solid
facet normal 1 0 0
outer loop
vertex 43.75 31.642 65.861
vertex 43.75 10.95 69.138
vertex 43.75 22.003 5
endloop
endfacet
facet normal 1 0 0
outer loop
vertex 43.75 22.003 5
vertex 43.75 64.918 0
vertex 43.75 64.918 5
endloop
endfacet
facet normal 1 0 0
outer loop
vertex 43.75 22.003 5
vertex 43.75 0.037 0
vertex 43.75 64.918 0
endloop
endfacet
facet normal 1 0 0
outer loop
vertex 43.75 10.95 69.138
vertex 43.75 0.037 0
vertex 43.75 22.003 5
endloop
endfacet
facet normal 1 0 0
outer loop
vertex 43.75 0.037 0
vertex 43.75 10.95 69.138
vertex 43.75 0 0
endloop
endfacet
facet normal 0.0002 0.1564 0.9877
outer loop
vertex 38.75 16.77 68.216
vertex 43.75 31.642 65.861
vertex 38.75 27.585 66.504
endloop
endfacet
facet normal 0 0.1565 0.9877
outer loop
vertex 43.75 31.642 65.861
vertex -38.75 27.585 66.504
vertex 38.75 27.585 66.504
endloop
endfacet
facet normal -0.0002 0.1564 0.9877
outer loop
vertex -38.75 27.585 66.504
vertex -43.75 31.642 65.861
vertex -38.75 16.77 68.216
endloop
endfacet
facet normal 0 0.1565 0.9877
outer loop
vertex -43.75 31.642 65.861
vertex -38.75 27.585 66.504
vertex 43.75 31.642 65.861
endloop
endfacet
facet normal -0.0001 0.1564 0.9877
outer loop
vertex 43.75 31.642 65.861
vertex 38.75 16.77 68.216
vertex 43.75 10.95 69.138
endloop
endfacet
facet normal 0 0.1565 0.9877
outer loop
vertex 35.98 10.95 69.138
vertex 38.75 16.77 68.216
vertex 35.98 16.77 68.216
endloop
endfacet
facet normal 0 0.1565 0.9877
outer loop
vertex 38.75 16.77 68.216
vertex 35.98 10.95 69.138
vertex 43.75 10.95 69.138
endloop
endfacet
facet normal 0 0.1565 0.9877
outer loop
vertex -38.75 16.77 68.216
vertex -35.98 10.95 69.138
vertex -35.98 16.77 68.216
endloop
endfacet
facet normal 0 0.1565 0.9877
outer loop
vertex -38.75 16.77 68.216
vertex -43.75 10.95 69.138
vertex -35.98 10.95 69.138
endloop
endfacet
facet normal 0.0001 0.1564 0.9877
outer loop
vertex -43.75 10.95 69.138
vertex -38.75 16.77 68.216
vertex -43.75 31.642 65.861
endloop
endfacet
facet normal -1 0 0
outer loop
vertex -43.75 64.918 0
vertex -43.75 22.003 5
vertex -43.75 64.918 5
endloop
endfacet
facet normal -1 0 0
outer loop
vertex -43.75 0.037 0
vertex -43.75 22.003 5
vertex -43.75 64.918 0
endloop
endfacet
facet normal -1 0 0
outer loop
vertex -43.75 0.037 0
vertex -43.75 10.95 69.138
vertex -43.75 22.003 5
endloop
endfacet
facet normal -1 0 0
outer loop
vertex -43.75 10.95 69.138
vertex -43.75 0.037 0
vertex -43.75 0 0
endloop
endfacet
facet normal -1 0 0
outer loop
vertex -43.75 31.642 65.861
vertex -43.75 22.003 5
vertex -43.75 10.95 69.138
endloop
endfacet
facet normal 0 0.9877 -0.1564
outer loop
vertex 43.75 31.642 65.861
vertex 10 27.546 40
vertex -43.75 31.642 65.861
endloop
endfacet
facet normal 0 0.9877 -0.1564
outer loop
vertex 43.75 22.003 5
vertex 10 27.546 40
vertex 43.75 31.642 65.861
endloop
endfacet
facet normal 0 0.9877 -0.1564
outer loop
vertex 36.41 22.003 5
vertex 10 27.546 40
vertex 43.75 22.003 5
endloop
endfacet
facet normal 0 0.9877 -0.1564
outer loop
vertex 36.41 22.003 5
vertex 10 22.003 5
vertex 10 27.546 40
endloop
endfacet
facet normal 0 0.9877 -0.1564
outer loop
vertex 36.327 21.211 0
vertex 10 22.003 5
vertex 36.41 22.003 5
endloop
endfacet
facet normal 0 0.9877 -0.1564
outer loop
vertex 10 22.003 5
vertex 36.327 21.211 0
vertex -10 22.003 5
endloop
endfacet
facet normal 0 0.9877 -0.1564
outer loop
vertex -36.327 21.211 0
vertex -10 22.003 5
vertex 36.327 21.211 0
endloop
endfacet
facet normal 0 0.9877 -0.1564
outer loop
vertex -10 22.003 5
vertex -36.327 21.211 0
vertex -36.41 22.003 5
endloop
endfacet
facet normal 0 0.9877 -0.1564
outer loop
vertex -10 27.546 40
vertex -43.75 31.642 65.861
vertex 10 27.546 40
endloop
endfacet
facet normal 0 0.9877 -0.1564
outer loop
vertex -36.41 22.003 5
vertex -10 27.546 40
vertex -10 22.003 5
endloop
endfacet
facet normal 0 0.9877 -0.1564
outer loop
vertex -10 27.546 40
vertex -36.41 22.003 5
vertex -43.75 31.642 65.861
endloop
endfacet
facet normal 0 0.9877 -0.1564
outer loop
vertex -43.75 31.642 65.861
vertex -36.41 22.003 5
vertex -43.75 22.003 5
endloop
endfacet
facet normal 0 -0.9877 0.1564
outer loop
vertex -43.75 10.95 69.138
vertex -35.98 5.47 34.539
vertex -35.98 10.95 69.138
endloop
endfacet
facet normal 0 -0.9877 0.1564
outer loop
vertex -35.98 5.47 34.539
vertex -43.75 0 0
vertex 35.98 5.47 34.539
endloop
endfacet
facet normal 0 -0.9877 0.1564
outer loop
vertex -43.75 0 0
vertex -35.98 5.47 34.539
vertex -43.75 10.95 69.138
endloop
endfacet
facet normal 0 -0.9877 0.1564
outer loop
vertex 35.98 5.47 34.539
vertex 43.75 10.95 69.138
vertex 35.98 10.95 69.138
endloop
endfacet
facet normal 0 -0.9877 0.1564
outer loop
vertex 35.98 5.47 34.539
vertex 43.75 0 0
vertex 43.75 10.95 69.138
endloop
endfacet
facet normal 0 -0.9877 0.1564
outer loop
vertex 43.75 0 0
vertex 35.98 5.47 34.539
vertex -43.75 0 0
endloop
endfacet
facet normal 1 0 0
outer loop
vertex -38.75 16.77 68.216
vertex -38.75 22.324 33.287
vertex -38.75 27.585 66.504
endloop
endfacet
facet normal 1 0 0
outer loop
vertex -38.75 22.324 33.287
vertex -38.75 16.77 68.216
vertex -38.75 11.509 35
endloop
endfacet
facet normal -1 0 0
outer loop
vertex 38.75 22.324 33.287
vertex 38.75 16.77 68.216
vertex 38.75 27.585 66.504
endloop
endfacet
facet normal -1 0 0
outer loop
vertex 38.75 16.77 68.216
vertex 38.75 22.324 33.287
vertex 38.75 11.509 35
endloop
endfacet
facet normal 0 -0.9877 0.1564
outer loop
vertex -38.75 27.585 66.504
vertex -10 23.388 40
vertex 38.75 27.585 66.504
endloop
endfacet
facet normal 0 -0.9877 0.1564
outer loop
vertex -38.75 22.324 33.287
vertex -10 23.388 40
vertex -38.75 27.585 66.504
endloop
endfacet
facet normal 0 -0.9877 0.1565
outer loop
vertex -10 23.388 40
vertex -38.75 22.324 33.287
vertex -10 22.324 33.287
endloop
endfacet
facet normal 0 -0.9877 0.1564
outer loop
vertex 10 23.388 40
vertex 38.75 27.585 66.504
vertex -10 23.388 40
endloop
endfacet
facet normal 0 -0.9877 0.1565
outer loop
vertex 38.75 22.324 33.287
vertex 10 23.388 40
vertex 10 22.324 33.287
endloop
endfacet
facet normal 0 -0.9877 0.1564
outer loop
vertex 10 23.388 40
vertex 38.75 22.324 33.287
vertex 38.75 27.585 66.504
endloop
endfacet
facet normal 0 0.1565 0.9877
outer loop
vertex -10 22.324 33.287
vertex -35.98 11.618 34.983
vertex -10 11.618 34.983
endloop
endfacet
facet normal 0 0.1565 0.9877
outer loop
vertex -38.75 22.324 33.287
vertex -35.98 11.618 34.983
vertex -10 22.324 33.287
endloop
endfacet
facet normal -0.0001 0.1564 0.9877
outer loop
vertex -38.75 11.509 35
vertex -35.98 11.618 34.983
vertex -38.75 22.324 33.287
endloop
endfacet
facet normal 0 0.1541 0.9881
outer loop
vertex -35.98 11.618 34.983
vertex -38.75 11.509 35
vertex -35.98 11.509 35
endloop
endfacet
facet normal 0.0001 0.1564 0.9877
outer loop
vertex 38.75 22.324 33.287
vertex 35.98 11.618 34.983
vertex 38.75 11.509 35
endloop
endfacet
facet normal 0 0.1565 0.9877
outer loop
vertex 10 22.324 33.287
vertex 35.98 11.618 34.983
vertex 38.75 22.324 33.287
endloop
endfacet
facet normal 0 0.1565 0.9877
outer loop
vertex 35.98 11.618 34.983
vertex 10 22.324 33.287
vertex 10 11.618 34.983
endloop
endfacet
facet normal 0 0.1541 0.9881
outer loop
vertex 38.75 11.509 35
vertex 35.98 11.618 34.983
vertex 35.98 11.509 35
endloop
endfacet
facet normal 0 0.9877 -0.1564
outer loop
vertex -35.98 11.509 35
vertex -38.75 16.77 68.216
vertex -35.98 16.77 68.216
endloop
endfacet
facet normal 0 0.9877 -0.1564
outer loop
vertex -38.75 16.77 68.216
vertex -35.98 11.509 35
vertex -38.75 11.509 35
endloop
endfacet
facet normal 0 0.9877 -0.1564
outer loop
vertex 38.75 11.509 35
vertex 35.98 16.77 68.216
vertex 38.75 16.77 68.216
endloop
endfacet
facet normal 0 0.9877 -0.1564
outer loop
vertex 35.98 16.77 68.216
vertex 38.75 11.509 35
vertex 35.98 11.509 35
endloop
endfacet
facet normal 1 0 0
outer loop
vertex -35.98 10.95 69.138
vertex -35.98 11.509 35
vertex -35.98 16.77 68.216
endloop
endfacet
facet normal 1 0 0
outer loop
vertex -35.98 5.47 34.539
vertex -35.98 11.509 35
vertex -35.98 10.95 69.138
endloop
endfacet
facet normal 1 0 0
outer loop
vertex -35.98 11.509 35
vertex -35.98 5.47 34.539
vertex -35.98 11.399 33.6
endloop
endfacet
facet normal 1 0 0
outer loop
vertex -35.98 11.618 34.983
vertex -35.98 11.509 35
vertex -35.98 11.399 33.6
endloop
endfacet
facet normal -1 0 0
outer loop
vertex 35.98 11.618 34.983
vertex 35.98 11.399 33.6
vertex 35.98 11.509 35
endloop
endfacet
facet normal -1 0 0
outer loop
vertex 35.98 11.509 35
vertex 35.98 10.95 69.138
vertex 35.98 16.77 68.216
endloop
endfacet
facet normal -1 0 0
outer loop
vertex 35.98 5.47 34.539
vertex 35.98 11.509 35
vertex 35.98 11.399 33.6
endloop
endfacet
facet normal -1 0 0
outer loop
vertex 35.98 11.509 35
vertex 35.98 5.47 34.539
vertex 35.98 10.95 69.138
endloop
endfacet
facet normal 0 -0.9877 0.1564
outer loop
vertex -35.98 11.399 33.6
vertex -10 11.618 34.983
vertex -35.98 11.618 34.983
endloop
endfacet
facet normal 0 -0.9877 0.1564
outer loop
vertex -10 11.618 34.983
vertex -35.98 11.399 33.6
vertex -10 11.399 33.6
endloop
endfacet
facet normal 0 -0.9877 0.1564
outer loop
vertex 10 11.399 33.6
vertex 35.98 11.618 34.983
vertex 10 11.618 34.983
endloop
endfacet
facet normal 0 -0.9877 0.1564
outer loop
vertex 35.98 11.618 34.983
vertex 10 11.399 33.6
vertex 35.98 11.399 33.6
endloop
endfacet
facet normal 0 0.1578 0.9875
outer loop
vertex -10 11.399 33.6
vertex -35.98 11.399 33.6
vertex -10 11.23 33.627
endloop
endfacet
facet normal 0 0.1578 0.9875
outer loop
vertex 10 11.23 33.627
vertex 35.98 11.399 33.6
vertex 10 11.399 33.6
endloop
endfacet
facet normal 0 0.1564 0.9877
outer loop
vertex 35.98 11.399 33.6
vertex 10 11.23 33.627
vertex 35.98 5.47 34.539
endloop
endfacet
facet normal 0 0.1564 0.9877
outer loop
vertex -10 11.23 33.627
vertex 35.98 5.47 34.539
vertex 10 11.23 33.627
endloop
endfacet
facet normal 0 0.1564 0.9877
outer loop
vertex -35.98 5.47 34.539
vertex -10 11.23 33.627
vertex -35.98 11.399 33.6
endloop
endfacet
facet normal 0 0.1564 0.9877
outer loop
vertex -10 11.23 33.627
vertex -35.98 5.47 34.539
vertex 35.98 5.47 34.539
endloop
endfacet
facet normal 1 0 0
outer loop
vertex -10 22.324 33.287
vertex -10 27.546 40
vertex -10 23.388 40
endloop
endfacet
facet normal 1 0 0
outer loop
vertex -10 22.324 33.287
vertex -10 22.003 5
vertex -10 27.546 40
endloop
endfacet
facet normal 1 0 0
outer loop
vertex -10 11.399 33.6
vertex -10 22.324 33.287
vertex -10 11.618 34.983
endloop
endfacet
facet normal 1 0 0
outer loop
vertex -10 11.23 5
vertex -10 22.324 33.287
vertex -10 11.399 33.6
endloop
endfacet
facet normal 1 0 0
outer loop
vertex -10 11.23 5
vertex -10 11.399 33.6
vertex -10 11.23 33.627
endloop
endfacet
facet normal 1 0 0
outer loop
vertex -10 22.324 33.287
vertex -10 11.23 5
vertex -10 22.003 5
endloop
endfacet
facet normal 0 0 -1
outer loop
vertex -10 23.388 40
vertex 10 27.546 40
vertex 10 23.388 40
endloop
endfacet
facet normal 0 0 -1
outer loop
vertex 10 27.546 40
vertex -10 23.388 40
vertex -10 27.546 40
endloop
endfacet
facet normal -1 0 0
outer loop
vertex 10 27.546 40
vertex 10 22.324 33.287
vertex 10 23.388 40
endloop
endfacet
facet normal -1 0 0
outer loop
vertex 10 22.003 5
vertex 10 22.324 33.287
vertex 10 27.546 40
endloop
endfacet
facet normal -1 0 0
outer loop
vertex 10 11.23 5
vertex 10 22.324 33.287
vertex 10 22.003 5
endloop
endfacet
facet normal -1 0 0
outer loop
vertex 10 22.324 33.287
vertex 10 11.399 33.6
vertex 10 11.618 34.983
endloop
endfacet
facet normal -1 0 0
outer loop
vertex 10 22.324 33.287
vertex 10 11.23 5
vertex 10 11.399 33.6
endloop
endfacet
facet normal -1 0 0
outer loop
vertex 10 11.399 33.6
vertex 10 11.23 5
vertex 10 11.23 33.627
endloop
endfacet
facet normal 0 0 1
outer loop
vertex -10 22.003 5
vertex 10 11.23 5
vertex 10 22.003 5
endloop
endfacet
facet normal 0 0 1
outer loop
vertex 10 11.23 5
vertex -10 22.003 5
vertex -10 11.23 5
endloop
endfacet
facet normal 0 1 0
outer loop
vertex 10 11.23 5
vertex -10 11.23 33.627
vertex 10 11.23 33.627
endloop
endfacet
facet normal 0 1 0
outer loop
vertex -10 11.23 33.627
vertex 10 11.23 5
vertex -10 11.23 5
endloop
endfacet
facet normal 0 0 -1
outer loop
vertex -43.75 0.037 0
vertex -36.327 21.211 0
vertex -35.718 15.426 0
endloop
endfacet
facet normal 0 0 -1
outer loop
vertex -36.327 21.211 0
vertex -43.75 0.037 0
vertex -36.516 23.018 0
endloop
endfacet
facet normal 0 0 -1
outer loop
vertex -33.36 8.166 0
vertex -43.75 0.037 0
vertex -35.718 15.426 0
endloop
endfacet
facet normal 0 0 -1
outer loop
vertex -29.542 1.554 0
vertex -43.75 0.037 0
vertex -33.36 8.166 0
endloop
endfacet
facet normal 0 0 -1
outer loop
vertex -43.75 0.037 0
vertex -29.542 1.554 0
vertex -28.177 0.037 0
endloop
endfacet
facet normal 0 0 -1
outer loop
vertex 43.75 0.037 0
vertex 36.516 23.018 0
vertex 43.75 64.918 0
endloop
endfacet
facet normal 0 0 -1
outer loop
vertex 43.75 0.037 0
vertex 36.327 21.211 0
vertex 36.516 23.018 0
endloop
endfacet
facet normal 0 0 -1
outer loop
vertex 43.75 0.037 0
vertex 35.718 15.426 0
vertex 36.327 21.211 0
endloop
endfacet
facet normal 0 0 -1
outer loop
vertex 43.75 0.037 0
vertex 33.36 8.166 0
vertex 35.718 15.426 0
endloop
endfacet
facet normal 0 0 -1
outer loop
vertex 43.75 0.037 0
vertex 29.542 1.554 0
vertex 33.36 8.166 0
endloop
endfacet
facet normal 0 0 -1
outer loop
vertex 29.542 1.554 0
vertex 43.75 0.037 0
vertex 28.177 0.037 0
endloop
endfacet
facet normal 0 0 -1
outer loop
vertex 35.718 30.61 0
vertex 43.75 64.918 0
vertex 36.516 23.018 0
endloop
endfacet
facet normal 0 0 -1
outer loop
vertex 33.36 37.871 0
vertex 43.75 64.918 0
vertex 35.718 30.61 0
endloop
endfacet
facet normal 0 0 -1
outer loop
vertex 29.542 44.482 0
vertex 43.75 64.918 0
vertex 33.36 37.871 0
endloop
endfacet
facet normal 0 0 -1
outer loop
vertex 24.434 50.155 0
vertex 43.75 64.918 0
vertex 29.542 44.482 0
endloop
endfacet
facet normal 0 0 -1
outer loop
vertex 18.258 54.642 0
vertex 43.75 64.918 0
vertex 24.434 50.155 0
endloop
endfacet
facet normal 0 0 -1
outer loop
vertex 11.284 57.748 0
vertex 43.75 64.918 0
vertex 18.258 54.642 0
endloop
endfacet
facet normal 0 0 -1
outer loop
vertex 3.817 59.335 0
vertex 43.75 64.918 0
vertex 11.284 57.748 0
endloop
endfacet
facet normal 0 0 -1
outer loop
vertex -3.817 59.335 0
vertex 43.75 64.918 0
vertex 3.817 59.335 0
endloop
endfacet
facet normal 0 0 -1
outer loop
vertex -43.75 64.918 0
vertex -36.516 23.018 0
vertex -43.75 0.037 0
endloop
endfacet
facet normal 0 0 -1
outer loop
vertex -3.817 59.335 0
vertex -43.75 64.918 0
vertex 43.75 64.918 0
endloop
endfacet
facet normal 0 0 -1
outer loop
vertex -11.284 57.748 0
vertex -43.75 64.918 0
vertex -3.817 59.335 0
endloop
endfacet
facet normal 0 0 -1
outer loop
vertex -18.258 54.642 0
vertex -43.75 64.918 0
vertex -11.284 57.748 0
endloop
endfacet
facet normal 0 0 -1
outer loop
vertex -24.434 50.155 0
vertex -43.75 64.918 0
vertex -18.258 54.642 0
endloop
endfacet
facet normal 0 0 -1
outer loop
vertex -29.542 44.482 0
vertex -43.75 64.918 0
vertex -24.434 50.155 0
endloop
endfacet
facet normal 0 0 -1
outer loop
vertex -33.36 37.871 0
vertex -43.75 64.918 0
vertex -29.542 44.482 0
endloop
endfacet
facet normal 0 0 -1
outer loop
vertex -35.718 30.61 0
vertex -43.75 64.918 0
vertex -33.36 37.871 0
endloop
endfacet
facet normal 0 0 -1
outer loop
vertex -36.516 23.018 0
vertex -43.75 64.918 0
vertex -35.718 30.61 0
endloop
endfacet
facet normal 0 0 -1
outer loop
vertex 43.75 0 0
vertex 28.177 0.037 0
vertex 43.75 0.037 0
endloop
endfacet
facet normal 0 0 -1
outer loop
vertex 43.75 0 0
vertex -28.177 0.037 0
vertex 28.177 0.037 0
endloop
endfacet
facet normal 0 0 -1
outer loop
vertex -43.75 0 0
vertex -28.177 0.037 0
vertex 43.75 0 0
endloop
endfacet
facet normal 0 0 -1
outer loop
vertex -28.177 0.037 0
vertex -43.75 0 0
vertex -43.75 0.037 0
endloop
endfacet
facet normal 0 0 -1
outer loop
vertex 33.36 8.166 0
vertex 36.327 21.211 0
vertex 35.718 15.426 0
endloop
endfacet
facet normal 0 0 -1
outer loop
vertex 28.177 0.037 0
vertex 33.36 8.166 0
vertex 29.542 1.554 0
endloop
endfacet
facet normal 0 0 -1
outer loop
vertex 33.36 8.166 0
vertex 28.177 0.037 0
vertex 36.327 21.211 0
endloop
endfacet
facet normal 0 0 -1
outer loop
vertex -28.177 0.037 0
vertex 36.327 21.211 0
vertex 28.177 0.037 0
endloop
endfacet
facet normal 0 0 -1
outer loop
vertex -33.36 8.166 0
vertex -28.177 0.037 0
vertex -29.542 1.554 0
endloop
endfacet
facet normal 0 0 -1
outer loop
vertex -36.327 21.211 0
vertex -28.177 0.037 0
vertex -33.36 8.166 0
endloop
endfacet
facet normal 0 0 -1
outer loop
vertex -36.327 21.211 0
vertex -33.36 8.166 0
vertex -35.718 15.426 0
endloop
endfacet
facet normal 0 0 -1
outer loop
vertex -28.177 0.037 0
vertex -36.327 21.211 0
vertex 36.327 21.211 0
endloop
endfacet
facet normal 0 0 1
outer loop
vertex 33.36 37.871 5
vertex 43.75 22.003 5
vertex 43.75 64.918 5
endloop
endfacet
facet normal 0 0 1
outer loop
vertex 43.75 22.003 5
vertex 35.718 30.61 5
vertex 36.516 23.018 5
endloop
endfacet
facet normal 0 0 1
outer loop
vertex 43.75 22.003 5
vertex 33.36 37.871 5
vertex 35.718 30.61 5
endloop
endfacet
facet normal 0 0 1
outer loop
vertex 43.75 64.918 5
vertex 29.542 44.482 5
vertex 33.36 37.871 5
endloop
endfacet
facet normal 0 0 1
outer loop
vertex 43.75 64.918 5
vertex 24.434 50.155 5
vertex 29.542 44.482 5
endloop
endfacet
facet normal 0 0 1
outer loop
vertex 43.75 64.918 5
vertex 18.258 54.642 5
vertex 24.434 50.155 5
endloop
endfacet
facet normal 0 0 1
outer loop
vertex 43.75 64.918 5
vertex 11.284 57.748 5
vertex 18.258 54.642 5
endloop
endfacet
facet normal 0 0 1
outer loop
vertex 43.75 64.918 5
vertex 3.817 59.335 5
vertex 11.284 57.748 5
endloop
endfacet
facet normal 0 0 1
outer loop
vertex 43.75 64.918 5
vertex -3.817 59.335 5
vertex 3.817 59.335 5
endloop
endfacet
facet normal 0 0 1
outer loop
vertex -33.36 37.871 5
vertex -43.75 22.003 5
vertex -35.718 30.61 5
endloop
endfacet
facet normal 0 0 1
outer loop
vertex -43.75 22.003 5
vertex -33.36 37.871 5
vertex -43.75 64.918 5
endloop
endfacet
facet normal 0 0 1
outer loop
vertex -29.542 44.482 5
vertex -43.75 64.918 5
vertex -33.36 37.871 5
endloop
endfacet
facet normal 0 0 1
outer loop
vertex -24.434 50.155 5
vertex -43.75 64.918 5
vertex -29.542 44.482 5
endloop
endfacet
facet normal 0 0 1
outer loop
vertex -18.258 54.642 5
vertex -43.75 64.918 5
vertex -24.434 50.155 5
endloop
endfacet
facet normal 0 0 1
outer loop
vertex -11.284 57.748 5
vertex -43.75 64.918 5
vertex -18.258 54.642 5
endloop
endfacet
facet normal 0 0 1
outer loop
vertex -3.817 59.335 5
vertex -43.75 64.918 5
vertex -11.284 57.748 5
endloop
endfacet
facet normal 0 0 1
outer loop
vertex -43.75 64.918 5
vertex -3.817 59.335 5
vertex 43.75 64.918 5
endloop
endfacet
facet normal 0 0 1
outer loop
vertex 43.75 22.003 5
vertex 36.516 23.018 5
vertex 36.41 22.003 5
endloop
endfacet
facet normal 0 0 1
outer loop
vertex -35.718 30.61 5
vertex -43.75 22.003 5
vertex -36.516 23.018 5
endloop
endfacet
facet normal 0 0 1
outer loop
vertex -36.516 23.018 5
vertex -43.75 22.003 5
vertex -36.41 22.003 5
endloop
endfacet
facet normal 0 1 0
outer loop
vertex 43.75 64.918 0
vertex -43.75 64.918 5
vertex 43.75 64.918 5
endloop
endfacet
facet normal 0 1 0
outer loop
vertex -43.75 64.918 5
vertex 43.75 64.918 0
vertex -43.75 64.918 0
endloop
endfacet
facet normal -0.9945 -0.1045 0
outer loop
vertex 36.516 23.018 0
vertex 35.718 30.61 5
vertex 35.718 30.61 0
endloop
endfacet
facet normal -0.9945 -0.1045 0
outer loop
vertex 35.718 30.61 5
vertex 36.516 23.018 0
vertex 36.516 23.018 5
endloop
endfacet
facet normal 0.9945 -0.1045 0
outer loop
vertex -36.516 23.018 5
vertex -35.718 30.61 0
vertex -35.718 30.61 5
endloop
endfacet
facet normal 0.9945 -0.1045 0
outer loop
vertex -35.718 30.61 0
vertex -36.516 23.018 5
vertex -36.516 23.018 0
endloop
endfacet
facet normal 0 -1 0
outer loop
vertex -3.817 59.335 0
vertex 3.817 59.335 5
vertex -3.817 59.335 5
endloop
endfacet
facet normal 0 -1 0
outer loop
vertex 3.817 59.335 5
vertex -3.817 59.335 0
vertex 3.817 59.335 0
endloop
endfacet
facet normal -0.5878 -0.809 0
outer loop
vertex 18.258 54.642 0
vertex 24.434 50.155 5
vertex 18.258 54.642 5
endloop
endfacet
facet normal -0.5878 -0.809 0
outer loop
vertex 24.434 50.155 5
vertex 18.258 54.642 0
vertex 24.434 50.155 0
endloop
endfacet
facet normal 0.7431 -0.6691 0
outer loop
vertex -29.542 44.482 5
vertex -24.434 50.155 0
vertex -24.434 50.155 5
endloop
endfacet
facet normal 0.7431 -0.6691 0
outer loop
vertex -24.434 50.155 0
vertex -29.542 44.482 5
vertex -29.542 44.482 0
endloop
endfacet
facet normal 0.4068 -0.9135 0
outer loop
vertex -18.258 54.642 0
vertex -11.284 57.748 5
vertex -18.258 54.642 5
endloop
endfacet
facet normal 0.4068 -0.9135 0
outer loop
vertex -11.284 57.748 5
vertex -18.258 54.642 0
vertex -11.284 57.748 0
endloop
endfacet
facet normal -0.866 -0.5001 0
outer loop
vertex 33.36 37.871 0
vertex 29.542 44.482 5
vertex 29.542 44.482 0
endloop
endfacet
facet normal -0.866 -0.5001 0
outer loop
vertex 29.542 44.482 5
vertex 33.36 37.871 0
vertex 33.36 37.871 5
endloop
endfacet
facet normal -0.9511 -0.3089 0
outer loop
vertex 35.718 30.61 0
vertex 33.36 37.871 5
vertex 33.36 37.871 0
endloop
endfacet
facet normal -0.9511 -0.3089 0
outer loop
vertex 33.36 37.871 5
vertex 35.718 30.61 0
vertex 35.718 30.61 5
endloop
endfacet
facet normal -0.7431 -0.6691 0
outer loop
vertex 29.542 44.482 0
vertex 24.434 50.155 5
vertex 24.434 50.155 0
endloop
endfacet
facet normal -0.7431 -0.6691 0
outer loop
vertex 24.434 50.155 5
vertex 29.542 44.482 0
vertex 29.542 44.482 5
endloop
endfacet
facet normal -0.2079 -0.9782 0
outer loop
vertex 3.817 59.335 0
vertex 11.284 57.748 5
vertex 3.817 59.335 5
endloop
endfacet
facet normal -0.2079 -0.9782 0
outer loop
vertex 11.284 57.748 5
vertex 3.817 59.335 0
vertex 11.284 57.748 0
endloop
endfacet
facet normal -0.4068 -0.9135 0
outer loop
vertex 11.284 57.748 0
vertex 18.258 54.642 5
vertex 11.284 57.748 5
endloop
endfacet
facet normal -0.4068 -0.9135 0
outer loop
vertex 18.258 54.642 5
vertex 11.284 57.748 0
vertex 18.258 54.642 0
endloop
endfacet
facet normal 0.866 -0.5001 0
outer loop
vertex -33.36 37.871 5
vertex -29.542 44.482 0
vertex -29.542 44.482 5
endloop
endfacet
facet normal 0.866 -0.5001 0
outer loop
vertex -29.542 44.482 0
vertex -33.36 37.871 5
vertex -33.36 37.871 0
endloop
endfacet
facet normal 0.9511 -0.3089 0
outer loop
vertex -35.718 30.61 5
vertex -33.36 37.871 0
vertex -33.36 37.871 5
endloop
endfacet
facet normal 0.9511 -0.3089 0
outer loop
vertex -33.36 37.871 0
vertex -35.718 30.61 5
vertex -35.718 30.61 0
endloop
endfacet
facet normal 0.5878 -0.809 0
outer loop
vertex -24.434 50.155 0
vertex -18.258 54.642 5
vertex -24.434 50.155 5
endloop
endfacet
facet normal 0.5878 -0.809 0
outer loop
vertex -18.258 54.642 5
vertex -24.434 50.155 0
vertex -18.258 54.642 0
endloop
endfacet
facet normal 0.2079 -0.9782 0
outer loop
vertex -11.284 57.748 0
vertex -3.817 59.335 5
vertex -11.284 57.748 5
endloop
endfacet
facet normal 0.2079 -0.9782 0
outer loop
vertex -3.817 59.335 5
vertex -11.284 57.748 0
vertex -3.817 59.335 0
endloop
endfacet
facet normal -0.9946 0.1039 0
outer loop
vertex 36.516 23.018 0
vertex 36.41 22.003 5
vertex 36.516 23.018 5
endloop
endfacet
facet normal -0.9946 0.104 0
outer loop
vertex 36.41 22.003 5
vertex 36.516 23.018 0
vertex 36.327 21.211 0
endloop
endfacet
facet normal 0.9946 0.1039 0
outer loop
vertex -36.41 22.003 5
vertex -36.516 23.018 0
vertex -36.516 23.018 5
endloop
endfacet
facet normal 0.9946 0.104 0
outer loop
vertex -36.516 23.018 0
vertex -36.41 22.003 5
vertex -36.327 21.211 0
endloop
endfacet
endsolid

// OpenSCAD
// Includes
include <BOSL/constants.scad>;
use <BOSL/transforms.scad>;
use <BOSL/shapes.scad>;

phone_x=75.50;
phone_z=153.00;
phone_y=8.95;

dock_angle=-9;

phone_tolerance=2;
base_wall=5;
base_z=70;

// If we're working on the model, we render the phone
// placeholder and the model is transparent.
// If we're rendering, the phone is not shown and the
// model is opaque.
preview_phone = true;
display_phone = $preview ? preview_phone: false;

// Where the phone is, depending on how angled the base is
trig_offset = ( base_z * tan(dock_angle / 2) * -1 ) + base_wall + ( phone_tolerance / 2 );

module phone(extra_dim = [0,0,0]) {
  cube([phone_x, phone_y, phone_z] + extra_dim);
};

if (display_phone) {
  color("gold") {
    move([phone_x / -2, trig_offset, base_z / 2]) {
      rotate(dock_angle, [1, 0, 0]) {
        phone();
      };
    };
  };
};


module base() {


  difference() {
    // Front box
    rotate([dock_angle, 0, 0]) {
      cube([
        phone_x + phone_tolerance + (base_wall * 2),
        phone_y + phone_tolerance + (base_wall * 2),
        base_z
      ]);
    };

    // Phone shaped hole
    move([base_wall, trig_offset, base_z / 2]) {
      rotate(dock_angle, [1, 0, 0]) phone([phone_tolerance, phone_tolerance, 0]);
    };

    cutout_ratio = 3/64;

    // Front cutout
    move([base_wall + ( phone_tolerance / 2 ) + (phone_x * (cutout_ratio / 2)), trig_offset - phone_y, (base_z / 2)]) {
      rotate(dock_angle, [1, 0, 0]) phone([-phone_x * cutout_ratio, 0, (phone_z / 16)]);
    };

    // Back cutout
    back_cutout_width = 20;
    move([(base_wall + (phone_tolerance + phone_x) / 2) - (back_cutout_width / 2), (phone_y + phone_tolerance + trig_offset) / 2, base_wall]) {
      cube([back_cutout_width, (phone_y + ( base_wall * 2) + phone_tolerance + trig_offset), base_z / 2]);
    };

    // Floor clip
    move([0, 0, -base_z]) cube([
      1000,
      1000,
      base_z
    ]);
  };

  z_move = ( base_wall * tan(dock_angle / base_wall));
  difference() {
    cube([phone_x + phone_tolerance + (base_wall * 2), (phone_y + phone_tolerance + (base_wall * 2) + trig_offset) * 2, base_wall]);
    move([0, -base_wall, -z_move ]) {
      rotate(dock_angle, [1, 0, 0]) {
        cube([phone_x + phone_tolerance + (base_wall * 2), base_wall, 2*base_wall]);
      };
    };
    move([
      (phone_x + phone_tolerance + (base_wall * 2)) / 2,
      (phone_y + phone_tolerance + (base_wall * 2) + trig_offset - (phone_y + phone_tolerance + (base_wall * 2)) + trig_offset),
      base_wall / 2
      ]) {
      cylinder(h = base_wall, r=(phone_y + phone_tolerance + (base_wall * 2) + trig_offset) * 1.125, center = true);
    };
  }
};

color("cyan", display_phone ? 0.25 : 1) {
    move([(phone_x + phone_tolerance + (base_wall * 2)) / -2, 0, 0]) {
      base();
    };
};
